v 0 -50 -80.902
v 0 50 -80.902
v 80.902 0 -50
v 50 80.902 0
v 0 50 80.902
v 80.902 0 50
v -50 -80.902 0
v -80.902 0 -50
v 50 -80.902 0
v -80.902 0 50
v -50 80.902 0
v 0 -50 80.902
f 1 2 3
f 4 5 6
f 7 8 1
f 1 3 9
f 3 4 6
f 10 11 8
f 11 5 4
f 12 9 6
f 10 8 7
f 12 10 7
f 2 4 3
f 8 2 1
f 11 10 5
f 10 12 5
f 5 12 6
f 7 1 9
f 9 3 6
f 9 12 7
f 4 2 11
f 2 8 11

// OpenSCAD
/*  Make an Icosahedron

    Copyright © 2018 Simon Forman

    This file is part of Eumirion

    Eumirion is free software: you can redistribute it and/or modify
    it under the terms of the GNU General Public License as published by
    the Free Software Foundation, either version 3 of the License, or
    (at your option) any later version.

    Eumirion is distributed in the hope that it will be useful,
    but WITHOUT ANY WARRANTY; without even the implied warranty of
    MERCHANTABILITY or FITNESS FOR A PARTICULAR PURPOSE.  See the
    GNU General Public License for more details.

    You should have received a copy of the GNU General Public License
    along with Eumirion.  If not see <http://www.gnu.org/licenses/>.


The twelve verticies of an icosohedron form three Golden Rectangles.

(One disadvantage of this method is that the result will not have just
twelve verticies due to being formed from very thin blocks.  That can be
corrected in a different program.)

 */


// The Golden Ratio of the long side to the short side is ~= 1.6180339...
phi = (1 + sqrt(5)) / 2;


R = 0.00001;  // Very thin blocks.


module golden_rectangle(n) {
    // Create a Golden Rectangle with short edge length of n.

    // In order to take the hull() of the rectangles they must actually
    // be very thin blocks.
    cube([n, n * phi, n * R], center=true);
}

module rectangles(n) {
    // Create three Golden Rectangles and orient them into formation.
                        golden_rectangle(n);
    rotate([90, 90, 0]) golden_rectangle(n);
    rotate([90, 0, 90]) golden_rectangle(n);
}


// Take the hull() of the rectangles to get an icosahedron.  The short
// edge of the rectangles gives length of the icosohedron's edges.
hull() {
    rectangles(100);
}
// Comment out the hull() call to see just the rectangles.
